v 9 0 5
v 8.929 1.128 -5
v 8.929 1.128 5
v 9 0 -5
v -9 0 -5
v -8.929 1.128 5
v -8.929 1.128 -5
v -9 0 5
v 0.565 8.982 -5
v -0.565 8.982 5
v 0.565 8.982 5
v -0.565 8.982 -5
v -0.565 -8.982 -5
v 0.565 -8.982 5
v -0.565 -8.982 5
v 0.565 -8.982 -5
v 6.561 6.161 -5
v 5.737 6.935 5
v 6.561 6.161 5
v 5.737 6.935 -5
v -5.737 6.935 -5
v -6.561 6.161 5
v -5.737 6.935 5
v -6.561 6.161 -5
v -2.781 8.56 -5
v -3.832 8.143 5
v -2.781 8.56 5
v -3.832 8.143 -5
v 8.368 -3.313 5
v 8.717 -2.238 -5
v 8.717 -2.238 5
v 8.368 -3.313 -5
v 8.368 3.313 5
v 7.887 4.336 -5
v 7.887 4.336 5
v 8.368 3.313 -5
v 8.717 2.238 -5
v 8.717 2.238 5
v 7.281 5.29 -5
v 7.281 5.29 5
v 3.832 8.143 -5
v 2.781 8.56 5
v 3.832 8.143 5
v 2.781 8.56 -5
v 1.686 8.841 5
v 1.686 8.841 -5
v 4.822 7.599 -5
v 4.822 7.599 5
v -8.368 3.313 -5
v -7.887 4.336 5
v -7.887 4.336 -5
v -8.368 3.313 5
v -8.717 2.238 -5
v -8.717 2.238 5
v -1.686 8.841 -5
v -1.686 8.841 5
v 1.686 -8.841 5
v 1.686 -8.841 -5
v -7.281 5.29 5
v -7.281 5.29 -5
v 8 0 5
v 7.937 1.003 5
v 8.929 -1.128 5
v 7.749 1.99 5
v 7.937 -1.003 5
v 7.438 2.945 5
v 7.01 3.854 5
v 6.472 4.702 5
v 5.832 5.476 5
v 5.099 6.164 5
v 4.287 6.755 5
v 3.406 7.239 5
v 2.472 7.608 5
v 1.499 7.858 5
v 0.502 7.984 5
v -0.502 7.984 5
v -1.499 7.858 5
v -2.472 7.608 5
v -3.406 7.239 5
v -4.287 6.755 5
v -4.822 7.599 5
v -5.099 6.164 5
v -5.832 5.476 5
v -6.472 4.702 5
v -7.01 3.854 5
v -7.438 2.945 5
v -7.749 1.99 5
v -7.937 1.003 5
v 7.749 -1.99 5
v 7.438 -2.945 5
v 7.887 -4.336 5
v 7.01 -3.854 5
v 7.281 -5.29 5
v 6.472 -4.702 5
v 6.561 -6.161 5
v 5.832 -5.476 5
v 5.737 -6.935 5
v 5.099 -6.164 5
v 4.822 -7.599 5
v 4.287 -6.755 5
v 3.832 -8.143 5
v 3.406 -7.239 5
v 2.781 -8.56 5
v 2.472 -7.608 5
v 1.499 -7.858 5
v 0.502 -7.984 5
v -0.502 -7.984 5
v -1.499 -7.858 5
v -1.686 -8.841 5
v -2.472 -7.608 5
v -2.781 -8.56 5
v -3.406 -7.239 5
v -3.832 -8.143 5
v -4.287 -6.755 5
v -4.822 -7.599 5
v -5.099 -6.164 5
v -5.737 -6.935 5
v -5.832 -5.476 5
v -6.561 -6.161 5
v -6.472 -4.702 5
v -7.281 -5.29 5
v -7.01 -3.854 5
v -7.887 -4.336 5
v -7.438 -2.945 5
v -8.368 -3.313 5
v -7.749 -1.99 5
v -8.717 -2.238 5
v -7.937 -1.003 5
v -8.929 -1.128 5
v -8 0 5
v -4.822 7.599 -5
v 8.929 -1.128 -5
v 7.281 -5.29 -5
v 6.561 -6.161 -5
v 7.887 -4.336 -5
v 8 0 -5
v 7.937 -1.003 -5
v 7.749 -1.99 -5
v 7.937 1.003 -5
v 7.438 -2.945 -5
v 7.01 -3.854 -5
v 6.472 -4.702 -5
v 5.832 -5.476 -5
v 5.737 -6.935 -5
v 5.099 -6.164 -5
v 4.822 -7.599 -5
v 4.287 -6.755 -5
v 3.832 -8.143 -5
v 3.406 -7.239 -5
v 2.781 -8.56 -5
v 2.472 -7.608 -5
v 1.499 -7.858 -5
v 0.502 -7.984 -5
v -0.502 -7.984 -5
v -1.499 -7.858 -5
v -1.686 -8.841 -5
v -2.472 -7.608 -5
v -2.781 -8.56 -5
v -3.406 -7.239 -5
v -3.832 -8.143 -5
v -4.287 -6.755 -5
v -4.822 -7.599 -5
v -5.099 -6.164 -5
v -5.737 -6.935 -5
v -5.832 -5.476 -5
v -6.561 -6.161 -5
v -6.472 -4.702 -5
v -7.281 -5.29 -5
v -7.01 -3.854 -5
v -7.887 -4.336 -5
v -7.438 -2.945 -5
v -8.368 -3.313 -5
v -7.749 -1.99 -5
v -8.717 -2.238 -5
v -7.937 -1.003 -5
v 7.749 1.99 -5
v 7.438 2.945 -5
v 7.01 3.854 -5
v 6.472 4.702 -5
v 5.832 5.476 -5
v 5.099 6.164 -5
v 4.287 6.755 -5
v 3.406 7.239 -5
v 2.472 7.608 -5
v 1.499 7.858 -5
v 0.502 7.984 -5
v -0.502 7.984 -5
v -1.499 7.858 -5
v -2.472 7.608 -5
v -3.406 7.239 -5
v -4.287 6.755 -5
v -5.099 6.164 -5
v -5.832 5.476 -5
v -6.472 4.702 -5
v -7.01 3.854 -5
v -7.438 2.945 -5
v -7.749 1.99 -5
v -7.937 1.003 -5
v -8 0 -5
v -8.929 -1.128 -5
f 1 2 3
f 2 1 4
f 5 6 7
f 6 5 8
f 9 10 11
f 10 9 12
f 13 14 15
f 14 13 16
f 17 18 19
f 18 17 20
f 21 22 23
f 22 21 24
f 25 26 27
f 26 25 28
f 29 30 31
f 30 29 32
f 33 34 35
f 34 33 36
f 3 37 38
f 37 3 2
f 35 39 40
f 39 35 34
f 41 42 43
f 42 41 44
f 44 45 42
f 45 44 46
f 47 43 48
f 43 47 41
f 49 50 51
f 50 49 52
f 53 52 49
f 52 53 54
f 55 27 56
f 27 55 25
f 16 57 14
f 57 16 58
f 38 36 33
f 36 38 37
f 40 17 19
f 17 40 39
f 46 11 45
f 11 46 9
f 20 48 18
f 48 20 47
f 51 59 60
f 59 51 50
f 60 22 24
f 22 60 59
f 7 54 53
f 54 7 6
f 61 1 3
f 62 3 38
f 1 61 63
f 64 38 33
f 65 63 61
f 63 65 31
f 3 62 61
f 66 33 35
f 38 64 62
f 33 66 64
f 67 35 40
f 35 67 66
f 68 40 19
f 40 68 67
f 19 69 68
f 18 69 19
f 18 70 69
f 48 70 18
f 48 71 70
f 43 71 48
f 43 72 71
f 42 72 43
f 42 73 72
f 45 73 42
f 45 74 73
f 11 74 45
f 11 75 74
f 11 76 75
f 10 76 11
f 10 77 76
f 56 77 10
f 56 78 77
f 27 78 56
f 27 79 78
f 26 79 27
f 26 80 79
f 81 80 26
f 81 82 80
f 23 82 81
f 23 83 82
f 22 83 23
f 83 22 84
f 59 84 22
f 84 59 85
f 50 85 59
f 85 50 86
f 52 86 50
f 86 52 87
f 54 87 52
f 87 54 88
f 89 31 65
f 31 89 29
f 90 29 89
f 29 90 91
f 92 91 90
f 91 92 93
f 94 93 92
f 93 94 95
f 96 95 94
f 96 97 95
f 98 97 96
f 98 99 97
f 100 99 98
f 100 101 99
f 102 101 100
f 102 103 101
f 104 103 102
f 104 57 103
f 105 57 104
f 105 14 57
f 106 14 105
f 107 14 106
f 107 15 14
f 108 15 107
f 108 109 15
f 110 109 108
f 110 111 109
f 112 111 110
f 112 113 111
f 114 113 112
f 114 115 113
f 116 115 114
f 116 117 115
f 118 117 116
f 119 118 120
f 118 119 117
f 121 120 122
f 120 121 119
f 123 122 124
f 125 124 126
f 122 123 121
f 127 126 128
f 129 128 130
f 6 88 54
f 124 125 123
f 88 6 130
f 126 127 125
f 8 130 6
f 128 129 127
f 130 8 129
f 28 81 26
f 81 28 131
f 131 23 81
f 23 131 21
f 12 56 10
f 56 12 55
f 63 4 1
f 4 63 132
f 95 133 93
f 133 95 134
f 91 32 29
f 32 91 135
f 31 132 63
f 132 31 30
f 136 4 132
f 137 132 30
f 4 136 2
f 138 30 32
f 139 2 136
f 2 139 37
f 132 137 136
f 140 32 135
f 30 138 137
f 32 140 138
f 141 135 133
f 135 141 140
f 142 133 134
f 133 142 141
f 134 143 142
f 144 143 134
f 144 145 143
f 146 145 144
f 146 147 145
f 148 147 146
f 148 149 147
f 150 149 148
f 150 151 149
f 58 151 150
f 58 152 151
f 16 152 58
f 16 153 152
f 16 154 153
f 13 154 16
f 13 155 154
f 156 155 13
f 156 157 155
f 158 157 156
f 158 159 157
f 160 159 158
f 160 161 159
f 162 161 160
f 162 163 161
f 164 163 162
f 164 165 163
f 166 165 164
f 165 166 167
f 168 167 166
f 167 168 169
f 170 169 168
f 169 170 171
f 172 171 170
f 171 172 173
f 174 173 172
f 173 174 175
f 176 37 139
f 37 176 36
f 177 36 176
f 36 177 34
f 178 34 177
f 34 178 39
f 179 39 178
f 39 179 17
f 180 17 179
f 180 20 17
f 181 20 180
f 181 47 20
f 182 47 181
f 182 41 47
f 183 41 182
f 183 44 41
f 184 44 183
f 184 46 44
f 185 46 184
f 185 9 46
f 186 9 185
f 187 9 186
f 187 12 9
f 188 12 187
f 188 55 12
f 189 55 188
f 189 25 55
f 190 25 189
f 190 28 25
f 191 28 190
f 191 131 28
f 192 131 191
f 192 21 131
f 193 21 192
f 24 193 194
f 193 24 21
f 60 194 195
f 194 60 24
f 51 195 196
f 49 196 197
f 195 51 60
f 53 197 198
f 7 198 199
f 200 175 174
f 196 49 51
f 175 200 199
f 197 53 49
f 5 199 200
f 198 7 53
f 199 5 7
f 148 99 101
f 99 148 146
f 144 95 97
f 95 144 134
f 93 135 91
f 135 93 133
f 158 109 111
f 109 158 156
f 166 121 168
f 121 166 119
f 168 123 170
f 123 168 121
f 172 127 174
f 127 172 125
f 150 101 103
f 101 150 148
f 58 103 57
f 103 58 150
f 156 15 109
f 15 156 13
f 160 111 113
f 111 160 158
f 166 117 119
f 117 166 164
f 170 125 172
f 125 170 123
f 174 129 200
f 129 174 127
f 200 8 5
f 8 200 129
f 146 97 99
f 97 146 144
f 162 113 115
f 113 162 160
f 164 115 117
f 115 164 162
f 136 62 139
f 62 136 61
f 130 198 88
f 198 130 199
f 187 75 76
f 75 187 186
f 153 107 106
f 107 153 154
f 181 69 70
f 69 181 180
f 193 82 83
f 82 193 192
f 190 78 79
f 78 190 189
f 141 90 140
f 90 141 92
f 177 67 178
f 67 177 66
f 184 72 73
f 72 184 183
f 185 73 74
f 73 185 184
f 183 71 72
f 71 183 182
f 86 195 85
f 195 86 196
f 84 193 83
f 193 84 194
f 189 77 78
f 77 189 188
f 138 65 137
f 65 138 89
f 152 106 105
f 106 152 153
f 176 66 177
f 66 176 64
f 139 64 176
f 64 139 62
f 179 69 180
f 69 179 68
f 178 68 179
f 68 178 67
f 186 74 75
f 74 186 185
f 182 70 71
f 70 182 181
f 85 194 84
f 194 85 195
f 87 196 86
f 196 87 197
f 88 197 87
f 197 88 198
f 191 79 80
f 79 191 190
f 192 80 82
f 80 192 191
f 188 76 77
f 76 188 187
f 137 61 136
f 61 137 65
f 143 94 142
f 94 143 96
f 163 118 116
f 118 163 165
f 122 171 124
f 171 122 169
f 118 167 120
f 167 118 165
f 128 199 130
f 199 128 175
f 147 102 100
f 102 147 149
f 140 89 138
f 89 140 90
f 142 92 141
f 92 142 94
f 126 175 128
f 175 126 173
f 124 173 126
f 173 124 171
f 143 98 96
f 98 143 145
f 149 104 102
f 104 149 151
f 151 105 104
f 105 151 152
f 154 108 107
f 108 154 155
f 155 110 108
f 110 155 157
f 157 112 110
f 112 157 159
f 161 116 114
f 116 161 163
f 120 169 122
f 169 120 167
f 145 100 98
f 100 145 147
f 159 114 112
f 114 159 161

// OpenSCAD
$fn = 50;


difference() {
	union() {
		translate(v = [0, 0, -5.0000000000]) {
			cylinder(h = 10, r = 9.0000000000);
		}
	}
	union() {
		translate(v = [0, 0, -100.0000000000]) {
			cylinder(h = 200, r = 8);
		}
	}
}
